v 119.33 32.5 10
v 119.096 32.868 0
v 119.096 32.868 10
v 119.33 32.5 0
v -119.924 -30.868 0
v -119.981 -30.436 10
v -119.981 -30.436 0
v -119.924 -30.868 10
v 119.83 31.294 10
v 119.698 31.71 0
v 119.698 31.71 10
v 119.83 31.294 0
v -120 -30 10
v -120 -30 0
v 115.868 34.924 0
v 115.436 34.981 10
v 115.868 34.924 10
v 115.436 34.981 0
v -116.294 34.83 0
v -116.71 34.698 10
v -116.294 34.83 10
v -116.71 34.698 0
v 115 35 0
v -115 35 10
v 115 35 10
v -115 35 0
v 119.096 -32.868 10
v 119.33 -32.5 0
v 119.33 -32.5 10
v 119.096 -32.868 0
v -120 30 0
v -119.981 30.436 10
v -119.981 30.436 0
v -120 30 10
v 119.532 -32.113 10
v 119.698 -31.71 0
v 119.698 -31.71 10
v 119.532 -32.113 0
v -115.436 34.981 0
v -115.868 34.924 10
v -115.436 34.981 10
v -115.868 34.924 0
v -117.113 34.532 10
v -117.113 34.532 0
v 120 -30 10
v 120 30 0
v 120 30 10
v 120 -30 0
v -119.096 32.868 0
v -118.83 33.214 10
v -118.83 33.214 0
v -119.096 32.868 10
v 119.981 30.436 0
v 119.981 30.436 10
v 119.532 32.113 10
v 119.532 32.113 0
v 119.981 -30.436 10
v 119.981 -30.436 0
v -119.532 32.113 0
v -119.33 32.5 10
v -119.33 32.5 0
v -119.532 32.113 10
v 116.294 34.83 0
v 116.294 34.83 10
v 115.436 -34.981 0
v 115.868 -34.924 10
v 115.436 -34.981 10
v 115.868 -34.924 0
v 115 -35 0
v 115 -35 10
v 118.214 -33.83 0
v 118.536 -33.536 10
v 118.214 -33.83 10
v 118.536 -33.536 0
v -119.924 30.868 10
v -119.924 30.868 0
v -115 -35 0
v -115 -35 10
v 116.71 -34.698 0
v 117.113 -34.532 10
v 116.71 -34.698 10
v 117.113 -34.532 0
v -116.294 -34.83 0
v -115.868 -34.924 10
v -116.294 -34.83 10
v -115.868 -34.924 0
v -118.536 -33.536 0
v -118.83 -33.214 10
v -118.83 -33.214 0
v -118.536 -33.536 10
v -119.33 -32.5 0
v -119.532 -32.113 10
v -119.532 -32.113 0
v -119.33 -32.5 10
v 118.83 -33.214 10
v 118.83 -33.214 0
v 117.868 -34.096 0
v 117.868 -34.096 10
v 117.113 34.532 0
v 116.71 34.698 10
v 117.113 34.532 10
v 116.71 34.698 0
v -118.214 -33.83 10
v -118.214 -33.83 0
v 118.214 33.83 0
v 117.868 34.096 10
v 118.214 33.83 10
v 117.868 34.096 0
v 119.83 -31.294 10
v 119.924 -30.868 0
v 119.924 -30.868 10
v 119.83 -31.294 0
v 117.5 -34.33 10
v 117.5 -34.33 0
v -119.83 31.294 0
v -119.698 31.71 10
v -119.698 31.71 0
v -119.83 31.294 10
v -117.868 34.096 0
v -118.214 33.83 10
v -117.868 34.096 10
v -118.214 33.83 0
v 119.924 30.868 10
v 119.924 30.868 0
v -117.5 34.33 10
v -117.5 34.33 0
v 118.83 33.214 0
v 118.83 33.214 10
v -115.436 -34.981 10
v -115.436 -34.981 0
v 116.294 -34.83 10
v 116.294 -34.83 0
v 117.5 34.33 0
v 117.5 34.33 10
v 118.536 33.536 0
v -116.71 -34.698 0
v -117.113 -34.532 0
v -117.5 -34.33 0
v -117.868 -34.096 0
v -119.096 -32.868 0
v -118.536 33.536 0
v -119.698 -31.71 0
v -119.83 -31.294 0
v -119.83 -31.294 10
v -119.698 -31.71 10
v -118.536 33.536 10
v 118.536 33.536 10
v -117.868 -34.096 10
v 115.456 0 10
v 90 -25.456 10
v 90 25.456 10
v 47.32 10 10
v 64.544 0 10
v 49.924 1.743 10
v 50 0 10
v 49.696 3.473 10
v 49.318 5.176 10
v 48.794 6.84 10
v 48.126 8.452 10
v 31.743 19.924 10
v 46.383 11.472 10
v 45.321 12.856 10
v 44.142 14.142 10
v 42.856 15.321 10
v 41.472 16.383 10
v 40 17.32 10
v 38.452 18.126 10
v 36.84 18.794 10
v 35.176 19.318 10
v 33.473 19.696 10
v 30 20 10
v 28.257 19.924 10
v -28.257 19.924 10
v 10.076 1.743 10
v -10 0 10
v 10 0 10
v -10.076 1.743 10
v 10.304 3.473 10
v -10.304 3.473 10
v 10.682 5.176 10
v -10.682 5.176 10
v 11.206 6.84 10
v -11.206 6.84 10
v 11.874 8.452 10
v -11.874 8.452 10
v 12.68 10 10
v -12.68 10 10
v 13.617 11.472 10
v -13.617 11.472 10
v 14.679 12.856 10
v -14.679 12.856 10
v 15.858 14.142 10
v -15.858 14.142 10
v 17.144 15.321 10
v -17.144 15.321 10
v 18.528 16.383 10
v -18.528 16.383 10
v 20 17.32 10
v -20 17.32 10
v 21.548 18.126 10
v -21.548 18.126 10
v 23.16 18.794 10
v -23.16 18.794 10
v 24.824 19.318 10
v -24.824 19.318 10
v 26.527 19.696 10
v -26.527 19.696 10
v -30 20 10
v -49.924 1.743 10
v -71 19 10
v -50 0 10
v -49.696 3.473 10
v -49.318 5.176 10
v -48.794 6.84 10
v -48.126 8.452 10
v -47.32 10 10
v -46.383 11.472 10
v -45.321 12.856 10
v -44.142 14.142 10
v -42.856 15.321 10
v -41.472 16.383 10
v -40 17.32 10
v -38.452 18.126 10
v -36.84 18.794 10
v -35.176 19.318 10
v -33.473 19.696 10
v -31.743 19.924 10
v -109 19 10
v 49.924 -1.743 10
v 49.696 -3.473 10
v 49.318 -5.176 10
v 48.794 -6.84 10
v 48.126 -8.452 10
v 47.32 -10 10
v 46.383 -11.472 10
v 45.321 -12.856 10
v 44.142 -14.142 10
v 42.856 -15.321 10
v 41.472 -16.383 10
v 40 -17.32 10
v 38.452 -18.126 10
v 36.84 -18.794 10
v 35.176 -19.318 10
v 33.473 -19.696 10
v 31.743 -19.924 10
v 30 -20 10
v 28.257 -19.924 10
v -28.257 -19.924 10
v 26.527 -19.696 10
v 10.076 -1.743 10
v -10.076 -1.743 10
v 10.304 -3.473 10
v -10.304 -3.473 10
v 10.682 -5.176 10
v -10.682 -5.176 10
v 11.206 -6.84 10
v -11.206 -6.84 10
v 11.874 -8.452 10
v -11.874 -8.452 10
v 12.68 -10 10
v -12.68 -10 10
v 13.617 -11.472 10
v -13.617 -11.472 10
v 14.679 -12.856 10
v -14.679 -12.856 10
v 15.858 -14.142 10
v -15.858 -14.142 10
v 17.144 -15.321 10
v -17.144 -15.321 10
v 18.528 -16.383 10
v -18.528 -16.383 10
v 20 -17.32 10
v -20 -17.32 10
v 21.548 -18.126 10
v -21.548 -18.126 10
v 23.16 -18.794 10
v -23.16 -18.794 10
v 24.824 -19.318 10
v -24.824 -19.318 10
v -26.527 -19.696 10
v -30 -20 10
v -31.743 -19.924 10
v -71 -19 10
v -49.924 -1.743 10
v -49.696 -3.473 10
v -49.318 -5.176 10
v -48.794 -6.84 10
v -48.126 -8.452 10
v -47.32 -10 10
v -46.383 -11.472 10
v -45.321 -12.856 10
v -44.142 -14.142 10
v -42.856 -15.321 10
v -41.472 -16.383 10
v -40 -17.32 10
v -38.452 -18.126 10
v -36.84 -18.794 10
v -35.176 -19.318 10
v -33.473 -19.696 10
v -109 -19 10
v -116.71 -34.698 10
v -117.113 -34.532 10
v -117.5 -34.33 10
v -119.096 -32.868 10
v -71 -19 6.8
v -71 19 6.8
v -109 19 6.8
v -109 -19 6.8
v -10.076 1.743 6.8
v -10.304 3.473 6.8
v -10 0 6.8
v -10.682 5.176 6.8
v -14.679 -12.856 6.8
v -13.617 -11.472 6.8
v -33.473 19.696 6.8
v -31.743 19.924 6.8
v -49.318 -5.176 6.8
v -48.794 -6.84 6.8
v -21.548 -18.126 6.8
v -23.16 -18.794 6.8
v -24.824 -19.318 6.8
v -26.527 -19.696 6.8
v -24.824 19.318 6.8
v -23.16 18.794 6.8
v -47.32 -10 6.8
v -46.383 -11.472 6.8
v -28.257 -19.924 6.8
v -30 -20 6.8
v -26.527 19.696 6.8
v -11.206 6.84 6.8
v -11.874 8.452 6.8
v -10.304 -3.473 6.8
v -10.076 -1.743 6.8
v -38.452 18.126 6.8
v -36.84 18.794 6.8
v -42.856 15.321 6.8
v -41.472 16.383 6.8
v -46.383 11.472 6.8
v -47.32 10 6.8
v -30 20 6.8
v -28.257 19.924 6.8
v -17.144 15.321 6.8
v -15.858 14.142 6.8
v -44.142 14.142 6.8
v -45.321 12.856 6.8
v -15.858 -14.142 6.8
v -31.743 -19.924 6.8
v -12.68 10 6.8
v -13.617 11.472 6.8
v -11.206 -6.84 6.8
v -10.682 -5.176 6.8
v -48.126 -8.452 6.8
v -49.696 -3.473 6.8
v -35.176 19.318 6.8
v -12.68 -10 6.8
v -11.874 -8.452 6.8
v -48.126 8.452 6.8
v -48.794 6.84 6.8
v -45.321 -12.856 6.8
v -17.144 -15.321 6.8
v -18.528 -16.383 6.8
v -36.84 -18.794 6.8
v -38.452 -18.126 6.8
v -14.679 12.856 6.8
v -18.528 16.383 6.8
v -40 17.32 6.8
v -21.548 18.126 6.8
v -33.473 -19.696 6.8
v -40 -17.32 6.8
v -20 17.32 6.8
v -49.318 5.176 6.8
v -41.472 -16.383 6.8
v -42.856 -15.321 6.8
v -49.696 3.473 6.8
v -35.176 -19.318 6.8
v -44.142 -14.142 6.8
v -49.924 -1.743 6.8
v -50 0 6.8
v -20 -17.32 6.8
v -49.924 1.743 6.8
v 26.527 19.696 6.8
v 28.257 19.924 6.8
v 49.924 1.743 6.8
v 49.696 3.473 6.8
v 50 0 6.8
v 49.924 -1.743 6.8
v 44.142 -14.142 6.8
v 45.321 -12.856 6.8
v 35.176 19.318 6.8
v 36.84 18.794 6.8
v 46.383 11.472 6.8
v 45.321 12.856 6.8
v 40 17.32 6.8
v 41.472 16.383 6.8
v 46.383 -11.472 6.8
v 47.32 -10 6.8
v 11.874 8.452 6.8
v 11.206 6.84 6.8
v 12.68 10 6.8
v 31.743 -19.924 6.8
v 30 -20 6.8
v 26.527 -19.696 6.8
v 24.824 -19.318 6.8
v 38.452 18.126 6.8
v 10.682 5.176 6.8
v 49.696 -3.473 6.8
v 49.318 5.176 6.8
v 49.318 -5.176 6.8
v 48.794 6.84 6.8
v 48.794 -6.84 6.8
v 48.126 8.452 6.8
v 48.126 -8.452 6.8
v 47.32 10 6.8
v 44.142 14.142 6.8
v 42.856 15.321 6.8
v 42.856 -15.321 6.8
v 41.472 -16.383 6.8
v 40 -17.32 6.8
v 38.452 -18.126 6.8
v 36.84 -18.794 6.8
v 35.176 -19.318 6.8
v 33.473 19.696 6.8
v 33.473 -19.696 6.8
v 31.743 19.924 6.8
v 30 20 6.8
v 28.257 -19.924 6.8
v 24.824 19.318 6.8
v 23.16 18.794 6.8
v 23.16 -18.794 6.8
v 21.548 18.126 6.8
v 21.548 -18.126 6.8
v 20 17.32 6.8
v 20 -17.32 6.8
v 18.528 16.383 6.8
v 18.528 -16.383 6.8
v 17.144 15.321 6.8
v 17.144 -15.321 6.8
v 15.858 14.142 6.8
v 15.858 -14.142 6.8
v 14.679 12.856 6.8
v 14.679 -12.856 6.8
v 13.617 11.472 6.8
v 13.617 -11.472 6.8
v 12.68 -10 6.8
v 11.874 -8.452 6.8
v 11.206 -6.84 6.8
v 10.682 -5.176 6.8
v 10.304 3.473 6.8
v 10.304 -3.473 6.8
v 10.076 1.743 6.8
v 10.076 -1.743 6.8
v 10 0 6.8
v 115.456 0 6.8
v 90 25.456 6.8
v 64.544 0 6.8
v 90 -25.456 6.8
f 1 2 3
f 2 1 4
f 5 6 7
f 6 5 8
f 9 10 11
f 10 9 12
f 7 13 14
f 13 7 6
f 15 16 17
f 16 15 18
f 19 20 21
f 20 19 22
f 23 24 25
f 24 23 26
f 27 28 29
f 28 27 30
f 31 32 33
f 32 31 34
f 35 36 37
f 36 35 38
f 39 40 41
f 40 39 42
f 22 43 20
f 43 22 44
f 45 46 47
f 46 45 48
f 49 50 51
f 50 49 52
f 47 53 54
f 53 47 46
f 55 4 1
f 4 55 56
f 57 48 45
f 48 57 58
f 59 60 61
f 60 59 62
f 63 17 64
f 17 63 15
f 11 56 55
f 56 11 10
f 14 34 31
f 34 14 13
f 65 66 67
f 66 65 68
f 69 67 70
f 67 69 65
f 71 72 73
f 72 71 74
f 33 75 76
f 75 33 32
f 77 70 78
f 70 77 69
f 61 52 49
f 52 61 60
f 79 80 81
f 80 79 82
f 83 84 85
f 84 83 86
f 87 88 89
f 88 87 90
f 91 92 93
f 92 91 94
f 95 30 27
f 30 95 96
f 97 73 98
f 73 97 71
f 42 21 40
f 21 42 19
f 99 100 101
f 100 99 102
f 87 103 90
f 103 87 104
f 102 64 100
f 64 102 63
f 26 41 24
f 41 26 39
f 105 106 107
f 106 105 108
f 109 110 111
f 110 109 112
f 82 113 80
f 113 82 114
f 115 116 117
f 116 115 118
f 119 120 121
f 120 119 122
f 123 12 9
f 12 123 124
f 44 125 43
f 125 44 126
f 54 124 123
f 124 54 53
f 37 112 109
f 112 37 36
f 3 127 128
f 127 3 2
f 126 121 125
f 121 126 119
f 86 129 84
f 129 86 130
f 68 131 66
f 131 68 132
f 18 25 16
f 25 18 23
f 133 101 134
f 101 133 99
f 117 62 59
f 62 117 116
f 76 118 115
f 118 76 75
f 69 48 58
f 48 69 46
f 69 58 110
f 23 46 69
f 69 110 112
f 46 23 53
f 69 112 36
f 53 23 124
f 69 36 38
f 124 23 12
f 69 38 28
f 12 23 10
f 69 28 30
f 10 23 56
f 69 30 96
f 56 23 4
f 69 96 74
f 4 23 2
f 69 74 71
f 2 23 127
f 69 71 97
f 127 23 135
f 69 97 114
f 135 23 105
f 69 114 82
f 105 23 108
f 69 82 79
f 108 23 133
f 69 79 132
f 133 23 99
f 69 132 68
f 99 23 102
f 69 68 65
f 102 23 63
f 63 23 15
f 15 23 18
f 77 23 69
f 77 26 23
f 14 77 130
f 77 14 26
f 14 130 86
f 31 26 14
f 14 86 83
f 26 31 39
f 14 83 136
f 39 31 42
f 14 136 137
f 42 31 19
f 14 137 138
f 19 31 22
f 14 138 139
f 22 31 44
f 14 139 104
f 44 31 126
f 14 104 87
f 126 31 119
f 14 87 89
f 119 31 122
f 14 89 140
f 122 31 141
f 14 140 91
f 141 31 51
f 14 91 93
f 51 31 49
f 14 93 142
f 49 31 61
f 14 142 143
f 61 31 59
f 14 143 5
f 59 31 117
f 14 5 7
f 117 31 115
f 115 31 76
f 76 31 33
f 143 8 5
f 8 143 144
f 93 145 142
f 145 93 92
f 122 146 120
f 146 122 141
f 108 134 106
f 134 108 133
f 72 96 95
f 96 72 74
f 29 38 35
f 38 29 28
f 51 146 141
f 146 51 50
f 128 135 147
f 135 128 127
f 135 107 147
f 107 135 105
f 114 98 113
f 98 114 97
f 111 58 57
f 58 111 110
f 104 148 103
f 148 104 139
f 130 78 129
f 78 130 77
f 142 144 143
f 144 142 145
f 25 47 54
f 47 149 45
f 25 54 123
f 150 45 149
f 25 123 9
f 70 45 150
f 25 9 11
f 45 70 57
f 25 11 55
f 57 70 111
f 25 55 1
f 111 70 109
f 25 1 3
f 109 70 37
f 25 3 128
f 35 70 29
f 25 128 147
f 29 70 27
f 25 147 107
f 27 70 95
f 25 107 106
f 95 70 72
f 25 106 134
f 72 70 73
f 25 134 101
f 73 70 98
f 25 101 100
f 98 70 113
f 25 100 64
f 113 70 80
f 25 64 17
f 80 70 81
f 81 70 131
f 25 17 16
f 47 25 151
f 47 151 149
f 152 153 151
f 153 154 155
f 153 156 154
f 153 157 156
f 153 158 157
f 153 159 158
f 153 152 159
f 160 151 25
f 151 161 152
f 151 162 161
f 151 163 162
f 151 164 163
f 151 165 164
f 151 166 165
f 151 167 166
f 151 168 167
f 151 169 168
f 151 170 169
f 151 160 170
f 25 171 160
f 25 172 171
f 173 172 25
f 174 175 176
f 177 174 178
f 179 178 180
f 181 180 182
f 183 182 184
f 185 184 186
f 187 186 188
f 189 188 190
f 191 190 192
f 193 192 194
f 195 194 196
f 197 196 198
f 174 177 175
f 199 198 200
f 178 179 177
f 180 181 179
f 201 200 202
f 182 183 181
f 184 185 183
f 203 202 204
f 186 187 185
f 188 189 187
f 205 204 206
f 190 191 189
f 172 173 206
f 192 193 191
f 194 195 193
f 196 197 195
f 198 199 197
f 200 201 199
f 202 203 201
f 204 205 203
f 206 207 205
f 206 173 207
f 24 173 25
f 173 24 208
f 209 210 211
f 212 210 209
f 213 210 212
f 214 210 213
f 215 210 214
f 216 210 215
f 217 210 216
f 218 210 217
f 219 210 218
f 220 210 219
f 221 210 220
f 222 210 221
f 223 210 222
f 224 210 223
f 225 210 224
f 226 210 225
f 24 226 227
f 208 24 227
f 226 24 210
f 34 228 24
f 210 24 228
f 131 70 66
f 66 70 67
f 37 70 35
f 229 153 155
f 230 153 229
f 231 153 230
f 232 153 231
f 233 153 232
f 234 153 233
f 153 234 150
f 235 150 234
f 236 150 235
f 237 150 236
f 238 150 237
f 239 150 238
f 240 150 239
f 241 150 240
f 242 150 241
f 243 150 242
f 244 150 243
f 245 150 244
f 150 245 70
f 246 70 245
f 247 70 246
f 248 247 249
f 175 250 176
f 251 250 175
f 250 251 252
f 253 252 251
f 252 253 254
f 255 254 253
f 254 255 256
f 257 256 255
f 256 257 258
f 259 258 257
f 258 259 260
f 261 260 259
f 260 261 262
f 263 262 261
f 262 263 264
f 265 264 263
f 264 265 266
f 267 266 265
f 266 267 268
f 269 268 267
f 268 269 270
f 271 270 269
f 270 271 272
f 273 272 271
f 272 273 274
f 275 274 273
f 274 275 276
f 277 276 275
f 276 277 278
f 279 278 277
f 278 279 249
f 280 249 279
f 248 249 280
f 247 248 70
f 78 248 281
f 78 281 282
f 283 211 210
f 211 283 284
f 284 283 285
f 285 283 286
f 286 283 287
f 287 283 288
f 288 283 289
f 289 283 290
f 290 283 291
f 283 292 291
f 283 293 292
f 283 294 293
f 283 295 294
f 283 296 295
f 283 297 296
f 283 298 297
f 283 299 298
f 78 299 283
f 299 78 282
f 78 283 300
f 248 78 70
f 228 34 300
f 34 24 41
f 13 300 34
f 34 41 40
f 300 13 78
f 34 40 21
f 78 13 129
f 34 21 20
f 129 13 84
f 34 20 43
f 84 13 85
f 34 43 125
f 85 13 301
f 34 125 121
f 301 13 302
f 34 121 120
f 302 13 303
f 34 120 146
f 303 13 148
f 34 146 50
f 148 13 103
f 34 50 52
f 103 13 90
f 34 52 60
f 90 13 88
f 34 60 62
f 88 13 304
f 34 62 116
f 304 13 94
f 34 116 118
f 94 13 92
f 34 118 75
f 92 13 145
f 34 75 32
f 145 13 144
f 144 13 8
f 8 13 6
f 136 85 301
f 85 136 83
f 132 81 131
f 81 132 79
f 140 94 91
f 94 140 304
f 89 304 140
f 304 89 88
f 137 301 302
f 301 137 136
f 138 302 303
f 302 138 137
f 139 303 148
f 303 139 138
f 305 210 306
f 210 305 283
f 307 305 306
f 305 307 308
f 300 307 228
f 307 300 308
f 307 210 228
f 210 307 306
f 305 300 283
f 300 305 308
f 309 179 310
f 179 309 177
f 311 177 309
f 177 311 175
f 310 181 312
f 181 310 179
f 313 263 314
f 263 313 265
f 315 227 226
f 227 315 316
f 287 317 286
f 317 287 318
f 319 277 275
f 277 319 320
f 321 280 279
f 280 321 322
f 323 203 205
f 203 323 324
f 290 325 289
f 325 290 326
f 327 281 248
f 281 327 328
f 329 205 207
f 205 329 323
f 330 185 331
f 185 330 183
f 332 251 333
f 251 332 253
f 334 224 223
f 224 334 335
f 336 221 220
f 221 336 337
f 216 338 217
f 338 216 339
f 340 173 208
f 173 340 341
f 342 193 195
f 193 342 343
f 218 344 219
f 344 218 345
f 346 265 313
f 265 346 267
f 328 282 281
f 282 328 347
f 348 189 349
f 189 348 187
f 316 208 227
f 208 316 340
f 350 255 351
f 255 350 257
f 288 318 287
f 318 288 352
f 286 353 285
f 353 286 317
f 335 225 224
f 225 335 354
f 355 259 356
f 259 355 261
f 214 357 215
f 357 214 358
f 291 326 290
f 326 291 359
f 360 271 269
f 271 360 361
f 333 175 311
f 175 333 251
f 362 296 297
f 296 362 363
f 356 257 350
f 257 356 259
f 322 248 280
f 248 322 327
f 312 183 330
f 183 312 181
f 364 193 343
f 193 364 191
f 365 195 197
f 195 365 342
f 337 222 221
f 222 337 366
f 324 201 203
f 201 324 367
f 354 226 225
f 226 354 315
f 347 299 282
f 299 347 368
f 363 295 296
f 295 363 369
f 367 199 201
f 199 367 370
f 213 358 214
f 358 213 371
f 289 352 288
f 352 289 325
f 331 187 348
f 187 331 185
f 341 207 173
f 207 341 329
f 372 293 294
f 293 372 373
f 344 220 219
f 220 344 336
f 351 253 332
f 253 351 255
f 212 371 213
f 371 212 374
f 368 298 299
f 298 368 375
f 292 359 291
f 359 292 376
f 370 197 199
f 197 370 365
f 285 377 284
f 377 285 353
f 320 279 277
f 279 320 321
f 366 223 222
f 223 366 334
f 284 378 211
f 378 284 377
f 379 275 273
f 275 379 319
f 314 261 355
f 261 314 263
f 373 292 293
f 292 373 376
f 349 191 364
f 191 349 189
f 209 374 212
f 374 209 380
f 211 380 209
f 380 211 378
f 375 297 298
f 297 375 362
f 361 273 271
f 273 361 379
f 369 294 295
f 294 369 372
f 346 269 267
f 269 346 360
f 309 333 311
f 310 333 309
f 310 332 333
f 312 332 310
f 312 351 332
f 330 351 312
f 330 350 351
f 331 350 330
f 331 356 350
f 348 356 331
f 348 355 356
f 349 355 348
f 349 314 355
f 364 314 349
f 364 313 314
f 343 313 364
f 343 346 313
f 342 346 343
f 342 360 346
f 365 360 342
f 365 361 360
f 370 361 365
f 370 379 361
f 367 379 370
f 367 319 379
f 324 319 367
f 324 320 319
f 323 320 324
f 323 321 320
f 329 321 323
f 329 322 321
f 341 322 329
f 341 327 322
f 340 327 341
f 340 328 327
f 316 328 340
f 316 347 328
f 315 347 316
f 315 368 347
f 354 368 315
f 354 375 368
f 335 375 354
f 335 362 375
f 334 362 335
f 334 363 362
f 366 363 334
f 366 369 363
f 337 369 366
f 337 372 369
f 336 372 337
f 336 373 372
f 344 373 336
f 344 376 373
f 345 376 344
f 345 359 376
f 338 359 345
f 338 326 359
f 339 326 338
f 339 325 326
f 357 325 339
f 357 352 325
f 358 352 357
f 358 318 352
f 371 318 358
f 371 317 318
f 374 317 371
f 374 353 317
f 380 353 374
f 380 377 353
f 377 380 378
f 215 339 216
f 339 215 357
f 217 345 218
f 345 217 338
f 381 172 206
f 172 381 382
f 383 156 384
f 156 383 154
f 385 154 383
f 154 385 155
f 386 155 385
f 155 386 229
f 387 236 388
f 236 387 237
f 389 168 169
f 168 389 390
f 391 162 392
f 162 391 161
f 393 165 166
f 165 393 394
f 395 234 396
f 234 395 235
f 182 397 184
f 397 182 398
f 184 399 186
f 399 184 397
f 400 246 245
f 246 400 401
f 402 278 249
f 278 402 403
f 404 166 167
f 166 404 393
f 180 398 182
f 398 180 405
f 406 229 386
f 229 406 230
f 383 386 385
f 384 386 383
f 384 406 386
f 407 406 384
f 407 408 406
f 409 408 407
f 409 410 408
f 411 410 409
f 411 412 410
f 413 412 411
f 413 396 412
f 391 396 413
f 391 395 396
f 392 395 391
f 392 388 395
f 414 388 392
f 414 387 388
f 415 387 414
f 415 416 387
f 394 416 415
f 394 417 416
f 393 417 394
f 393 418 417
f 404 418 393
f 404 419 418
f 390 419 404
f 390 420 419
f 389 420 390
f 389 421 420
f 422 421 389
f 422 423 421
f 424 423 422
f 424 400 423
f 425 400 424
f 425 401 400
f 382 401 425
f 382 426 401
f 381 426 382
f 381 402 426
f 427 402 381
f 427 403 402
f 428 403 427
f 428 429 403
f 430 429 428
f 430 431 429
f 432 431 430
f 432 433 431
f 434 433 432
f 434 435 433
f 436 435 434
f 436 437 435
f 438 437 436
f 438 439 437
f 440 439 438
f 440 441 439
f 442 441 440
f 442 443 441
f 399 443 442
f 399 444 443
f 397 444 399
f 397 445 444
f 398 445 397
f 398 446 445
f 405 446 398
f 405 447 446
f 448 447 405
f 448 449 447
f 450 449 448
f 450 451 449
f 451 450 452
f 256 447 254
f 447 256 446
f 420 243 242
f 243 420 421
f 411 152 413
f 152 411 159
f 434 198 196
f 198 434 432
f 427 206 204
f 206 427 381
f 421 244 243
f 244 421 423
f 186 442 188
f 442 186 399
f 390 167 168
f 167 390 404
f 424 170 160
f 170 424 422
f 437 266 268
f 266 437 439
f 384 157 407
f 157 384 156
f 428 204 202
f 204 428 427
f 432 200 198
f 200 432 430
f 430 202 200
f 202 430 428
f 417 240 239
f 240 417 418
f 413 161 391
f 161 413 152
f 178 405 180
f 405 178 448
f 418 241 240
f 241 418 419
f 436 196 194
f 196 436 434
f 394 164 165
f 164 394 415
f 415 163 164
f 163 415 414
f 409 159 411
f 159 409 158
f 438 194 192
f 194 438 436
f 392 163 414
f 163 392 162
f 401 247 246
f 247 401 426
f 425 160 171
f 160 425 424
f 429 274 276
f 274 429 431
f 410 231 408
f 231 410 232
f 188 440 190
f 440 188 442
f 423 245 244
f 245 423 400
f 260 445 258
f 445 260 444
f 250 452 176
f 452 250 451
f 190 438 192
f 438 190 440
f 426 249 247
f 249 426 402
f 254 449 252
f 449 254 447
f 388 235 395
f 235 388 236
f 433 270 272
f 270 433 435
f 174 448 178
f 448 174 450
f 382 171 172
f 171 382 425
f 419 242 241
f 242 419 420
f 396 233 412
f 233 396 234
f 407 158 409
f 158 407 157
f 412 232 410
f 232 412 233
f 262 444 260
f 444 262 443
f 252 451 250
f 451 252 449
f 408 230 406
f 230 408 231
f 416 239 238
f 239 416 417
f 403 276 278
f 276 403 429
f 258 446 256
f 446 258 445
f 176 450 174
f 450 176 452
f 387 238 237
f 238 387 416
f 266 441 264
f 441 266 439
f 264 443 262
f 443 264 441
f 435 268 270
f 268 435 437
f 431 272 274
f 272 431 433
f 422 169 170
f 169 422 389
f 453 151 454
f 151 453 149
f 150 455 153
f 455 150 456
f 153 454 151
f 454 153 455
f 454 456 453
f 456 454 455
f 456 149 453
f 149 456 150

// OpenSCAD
// SCARA pickup placement tray — millimetres
// Fits a 256 x 256 mm print bed; print flat with no supports.
$fn = 72;
length = 240;
width = 70;
height = 10;
corner_radius = 5;
pocket_depth = 3.2;

module rounded_plate(l, w, h, r) {
    linear_extrude(height=h)
        hull()
            for (x=[-l/2+r, l/2-r], y=[-w/2+r, w/2-r])
                translate([x,y]) circle(r=r);
}

difference() {
    rounded_plate(length, width, height, corner_radius);
    // Square station for the red cube.
    translate([-90, 0, height-pocket_depth/2+0.1])
        cube([38,38,pocket_depth+0.2], center=true);
    // Round station for the green sphere.
    translate([-30,0,height-pocket_depth])
        cylinder(h=pocket_depth+0.2, r=20);
    // Round station for the yellow cylinder or other pieces.
    translate([30,0,height-pocket_depth])
        cylinder(h=pocket_depth+0.2, r=20);
    // Fourth station for the purple diamond block.
    translate([90, 0, height-pocket_depth/2+0.1])
        rotate([0,0,45]) cube([36,36,pocket_depth+0.2], center=true);
}
